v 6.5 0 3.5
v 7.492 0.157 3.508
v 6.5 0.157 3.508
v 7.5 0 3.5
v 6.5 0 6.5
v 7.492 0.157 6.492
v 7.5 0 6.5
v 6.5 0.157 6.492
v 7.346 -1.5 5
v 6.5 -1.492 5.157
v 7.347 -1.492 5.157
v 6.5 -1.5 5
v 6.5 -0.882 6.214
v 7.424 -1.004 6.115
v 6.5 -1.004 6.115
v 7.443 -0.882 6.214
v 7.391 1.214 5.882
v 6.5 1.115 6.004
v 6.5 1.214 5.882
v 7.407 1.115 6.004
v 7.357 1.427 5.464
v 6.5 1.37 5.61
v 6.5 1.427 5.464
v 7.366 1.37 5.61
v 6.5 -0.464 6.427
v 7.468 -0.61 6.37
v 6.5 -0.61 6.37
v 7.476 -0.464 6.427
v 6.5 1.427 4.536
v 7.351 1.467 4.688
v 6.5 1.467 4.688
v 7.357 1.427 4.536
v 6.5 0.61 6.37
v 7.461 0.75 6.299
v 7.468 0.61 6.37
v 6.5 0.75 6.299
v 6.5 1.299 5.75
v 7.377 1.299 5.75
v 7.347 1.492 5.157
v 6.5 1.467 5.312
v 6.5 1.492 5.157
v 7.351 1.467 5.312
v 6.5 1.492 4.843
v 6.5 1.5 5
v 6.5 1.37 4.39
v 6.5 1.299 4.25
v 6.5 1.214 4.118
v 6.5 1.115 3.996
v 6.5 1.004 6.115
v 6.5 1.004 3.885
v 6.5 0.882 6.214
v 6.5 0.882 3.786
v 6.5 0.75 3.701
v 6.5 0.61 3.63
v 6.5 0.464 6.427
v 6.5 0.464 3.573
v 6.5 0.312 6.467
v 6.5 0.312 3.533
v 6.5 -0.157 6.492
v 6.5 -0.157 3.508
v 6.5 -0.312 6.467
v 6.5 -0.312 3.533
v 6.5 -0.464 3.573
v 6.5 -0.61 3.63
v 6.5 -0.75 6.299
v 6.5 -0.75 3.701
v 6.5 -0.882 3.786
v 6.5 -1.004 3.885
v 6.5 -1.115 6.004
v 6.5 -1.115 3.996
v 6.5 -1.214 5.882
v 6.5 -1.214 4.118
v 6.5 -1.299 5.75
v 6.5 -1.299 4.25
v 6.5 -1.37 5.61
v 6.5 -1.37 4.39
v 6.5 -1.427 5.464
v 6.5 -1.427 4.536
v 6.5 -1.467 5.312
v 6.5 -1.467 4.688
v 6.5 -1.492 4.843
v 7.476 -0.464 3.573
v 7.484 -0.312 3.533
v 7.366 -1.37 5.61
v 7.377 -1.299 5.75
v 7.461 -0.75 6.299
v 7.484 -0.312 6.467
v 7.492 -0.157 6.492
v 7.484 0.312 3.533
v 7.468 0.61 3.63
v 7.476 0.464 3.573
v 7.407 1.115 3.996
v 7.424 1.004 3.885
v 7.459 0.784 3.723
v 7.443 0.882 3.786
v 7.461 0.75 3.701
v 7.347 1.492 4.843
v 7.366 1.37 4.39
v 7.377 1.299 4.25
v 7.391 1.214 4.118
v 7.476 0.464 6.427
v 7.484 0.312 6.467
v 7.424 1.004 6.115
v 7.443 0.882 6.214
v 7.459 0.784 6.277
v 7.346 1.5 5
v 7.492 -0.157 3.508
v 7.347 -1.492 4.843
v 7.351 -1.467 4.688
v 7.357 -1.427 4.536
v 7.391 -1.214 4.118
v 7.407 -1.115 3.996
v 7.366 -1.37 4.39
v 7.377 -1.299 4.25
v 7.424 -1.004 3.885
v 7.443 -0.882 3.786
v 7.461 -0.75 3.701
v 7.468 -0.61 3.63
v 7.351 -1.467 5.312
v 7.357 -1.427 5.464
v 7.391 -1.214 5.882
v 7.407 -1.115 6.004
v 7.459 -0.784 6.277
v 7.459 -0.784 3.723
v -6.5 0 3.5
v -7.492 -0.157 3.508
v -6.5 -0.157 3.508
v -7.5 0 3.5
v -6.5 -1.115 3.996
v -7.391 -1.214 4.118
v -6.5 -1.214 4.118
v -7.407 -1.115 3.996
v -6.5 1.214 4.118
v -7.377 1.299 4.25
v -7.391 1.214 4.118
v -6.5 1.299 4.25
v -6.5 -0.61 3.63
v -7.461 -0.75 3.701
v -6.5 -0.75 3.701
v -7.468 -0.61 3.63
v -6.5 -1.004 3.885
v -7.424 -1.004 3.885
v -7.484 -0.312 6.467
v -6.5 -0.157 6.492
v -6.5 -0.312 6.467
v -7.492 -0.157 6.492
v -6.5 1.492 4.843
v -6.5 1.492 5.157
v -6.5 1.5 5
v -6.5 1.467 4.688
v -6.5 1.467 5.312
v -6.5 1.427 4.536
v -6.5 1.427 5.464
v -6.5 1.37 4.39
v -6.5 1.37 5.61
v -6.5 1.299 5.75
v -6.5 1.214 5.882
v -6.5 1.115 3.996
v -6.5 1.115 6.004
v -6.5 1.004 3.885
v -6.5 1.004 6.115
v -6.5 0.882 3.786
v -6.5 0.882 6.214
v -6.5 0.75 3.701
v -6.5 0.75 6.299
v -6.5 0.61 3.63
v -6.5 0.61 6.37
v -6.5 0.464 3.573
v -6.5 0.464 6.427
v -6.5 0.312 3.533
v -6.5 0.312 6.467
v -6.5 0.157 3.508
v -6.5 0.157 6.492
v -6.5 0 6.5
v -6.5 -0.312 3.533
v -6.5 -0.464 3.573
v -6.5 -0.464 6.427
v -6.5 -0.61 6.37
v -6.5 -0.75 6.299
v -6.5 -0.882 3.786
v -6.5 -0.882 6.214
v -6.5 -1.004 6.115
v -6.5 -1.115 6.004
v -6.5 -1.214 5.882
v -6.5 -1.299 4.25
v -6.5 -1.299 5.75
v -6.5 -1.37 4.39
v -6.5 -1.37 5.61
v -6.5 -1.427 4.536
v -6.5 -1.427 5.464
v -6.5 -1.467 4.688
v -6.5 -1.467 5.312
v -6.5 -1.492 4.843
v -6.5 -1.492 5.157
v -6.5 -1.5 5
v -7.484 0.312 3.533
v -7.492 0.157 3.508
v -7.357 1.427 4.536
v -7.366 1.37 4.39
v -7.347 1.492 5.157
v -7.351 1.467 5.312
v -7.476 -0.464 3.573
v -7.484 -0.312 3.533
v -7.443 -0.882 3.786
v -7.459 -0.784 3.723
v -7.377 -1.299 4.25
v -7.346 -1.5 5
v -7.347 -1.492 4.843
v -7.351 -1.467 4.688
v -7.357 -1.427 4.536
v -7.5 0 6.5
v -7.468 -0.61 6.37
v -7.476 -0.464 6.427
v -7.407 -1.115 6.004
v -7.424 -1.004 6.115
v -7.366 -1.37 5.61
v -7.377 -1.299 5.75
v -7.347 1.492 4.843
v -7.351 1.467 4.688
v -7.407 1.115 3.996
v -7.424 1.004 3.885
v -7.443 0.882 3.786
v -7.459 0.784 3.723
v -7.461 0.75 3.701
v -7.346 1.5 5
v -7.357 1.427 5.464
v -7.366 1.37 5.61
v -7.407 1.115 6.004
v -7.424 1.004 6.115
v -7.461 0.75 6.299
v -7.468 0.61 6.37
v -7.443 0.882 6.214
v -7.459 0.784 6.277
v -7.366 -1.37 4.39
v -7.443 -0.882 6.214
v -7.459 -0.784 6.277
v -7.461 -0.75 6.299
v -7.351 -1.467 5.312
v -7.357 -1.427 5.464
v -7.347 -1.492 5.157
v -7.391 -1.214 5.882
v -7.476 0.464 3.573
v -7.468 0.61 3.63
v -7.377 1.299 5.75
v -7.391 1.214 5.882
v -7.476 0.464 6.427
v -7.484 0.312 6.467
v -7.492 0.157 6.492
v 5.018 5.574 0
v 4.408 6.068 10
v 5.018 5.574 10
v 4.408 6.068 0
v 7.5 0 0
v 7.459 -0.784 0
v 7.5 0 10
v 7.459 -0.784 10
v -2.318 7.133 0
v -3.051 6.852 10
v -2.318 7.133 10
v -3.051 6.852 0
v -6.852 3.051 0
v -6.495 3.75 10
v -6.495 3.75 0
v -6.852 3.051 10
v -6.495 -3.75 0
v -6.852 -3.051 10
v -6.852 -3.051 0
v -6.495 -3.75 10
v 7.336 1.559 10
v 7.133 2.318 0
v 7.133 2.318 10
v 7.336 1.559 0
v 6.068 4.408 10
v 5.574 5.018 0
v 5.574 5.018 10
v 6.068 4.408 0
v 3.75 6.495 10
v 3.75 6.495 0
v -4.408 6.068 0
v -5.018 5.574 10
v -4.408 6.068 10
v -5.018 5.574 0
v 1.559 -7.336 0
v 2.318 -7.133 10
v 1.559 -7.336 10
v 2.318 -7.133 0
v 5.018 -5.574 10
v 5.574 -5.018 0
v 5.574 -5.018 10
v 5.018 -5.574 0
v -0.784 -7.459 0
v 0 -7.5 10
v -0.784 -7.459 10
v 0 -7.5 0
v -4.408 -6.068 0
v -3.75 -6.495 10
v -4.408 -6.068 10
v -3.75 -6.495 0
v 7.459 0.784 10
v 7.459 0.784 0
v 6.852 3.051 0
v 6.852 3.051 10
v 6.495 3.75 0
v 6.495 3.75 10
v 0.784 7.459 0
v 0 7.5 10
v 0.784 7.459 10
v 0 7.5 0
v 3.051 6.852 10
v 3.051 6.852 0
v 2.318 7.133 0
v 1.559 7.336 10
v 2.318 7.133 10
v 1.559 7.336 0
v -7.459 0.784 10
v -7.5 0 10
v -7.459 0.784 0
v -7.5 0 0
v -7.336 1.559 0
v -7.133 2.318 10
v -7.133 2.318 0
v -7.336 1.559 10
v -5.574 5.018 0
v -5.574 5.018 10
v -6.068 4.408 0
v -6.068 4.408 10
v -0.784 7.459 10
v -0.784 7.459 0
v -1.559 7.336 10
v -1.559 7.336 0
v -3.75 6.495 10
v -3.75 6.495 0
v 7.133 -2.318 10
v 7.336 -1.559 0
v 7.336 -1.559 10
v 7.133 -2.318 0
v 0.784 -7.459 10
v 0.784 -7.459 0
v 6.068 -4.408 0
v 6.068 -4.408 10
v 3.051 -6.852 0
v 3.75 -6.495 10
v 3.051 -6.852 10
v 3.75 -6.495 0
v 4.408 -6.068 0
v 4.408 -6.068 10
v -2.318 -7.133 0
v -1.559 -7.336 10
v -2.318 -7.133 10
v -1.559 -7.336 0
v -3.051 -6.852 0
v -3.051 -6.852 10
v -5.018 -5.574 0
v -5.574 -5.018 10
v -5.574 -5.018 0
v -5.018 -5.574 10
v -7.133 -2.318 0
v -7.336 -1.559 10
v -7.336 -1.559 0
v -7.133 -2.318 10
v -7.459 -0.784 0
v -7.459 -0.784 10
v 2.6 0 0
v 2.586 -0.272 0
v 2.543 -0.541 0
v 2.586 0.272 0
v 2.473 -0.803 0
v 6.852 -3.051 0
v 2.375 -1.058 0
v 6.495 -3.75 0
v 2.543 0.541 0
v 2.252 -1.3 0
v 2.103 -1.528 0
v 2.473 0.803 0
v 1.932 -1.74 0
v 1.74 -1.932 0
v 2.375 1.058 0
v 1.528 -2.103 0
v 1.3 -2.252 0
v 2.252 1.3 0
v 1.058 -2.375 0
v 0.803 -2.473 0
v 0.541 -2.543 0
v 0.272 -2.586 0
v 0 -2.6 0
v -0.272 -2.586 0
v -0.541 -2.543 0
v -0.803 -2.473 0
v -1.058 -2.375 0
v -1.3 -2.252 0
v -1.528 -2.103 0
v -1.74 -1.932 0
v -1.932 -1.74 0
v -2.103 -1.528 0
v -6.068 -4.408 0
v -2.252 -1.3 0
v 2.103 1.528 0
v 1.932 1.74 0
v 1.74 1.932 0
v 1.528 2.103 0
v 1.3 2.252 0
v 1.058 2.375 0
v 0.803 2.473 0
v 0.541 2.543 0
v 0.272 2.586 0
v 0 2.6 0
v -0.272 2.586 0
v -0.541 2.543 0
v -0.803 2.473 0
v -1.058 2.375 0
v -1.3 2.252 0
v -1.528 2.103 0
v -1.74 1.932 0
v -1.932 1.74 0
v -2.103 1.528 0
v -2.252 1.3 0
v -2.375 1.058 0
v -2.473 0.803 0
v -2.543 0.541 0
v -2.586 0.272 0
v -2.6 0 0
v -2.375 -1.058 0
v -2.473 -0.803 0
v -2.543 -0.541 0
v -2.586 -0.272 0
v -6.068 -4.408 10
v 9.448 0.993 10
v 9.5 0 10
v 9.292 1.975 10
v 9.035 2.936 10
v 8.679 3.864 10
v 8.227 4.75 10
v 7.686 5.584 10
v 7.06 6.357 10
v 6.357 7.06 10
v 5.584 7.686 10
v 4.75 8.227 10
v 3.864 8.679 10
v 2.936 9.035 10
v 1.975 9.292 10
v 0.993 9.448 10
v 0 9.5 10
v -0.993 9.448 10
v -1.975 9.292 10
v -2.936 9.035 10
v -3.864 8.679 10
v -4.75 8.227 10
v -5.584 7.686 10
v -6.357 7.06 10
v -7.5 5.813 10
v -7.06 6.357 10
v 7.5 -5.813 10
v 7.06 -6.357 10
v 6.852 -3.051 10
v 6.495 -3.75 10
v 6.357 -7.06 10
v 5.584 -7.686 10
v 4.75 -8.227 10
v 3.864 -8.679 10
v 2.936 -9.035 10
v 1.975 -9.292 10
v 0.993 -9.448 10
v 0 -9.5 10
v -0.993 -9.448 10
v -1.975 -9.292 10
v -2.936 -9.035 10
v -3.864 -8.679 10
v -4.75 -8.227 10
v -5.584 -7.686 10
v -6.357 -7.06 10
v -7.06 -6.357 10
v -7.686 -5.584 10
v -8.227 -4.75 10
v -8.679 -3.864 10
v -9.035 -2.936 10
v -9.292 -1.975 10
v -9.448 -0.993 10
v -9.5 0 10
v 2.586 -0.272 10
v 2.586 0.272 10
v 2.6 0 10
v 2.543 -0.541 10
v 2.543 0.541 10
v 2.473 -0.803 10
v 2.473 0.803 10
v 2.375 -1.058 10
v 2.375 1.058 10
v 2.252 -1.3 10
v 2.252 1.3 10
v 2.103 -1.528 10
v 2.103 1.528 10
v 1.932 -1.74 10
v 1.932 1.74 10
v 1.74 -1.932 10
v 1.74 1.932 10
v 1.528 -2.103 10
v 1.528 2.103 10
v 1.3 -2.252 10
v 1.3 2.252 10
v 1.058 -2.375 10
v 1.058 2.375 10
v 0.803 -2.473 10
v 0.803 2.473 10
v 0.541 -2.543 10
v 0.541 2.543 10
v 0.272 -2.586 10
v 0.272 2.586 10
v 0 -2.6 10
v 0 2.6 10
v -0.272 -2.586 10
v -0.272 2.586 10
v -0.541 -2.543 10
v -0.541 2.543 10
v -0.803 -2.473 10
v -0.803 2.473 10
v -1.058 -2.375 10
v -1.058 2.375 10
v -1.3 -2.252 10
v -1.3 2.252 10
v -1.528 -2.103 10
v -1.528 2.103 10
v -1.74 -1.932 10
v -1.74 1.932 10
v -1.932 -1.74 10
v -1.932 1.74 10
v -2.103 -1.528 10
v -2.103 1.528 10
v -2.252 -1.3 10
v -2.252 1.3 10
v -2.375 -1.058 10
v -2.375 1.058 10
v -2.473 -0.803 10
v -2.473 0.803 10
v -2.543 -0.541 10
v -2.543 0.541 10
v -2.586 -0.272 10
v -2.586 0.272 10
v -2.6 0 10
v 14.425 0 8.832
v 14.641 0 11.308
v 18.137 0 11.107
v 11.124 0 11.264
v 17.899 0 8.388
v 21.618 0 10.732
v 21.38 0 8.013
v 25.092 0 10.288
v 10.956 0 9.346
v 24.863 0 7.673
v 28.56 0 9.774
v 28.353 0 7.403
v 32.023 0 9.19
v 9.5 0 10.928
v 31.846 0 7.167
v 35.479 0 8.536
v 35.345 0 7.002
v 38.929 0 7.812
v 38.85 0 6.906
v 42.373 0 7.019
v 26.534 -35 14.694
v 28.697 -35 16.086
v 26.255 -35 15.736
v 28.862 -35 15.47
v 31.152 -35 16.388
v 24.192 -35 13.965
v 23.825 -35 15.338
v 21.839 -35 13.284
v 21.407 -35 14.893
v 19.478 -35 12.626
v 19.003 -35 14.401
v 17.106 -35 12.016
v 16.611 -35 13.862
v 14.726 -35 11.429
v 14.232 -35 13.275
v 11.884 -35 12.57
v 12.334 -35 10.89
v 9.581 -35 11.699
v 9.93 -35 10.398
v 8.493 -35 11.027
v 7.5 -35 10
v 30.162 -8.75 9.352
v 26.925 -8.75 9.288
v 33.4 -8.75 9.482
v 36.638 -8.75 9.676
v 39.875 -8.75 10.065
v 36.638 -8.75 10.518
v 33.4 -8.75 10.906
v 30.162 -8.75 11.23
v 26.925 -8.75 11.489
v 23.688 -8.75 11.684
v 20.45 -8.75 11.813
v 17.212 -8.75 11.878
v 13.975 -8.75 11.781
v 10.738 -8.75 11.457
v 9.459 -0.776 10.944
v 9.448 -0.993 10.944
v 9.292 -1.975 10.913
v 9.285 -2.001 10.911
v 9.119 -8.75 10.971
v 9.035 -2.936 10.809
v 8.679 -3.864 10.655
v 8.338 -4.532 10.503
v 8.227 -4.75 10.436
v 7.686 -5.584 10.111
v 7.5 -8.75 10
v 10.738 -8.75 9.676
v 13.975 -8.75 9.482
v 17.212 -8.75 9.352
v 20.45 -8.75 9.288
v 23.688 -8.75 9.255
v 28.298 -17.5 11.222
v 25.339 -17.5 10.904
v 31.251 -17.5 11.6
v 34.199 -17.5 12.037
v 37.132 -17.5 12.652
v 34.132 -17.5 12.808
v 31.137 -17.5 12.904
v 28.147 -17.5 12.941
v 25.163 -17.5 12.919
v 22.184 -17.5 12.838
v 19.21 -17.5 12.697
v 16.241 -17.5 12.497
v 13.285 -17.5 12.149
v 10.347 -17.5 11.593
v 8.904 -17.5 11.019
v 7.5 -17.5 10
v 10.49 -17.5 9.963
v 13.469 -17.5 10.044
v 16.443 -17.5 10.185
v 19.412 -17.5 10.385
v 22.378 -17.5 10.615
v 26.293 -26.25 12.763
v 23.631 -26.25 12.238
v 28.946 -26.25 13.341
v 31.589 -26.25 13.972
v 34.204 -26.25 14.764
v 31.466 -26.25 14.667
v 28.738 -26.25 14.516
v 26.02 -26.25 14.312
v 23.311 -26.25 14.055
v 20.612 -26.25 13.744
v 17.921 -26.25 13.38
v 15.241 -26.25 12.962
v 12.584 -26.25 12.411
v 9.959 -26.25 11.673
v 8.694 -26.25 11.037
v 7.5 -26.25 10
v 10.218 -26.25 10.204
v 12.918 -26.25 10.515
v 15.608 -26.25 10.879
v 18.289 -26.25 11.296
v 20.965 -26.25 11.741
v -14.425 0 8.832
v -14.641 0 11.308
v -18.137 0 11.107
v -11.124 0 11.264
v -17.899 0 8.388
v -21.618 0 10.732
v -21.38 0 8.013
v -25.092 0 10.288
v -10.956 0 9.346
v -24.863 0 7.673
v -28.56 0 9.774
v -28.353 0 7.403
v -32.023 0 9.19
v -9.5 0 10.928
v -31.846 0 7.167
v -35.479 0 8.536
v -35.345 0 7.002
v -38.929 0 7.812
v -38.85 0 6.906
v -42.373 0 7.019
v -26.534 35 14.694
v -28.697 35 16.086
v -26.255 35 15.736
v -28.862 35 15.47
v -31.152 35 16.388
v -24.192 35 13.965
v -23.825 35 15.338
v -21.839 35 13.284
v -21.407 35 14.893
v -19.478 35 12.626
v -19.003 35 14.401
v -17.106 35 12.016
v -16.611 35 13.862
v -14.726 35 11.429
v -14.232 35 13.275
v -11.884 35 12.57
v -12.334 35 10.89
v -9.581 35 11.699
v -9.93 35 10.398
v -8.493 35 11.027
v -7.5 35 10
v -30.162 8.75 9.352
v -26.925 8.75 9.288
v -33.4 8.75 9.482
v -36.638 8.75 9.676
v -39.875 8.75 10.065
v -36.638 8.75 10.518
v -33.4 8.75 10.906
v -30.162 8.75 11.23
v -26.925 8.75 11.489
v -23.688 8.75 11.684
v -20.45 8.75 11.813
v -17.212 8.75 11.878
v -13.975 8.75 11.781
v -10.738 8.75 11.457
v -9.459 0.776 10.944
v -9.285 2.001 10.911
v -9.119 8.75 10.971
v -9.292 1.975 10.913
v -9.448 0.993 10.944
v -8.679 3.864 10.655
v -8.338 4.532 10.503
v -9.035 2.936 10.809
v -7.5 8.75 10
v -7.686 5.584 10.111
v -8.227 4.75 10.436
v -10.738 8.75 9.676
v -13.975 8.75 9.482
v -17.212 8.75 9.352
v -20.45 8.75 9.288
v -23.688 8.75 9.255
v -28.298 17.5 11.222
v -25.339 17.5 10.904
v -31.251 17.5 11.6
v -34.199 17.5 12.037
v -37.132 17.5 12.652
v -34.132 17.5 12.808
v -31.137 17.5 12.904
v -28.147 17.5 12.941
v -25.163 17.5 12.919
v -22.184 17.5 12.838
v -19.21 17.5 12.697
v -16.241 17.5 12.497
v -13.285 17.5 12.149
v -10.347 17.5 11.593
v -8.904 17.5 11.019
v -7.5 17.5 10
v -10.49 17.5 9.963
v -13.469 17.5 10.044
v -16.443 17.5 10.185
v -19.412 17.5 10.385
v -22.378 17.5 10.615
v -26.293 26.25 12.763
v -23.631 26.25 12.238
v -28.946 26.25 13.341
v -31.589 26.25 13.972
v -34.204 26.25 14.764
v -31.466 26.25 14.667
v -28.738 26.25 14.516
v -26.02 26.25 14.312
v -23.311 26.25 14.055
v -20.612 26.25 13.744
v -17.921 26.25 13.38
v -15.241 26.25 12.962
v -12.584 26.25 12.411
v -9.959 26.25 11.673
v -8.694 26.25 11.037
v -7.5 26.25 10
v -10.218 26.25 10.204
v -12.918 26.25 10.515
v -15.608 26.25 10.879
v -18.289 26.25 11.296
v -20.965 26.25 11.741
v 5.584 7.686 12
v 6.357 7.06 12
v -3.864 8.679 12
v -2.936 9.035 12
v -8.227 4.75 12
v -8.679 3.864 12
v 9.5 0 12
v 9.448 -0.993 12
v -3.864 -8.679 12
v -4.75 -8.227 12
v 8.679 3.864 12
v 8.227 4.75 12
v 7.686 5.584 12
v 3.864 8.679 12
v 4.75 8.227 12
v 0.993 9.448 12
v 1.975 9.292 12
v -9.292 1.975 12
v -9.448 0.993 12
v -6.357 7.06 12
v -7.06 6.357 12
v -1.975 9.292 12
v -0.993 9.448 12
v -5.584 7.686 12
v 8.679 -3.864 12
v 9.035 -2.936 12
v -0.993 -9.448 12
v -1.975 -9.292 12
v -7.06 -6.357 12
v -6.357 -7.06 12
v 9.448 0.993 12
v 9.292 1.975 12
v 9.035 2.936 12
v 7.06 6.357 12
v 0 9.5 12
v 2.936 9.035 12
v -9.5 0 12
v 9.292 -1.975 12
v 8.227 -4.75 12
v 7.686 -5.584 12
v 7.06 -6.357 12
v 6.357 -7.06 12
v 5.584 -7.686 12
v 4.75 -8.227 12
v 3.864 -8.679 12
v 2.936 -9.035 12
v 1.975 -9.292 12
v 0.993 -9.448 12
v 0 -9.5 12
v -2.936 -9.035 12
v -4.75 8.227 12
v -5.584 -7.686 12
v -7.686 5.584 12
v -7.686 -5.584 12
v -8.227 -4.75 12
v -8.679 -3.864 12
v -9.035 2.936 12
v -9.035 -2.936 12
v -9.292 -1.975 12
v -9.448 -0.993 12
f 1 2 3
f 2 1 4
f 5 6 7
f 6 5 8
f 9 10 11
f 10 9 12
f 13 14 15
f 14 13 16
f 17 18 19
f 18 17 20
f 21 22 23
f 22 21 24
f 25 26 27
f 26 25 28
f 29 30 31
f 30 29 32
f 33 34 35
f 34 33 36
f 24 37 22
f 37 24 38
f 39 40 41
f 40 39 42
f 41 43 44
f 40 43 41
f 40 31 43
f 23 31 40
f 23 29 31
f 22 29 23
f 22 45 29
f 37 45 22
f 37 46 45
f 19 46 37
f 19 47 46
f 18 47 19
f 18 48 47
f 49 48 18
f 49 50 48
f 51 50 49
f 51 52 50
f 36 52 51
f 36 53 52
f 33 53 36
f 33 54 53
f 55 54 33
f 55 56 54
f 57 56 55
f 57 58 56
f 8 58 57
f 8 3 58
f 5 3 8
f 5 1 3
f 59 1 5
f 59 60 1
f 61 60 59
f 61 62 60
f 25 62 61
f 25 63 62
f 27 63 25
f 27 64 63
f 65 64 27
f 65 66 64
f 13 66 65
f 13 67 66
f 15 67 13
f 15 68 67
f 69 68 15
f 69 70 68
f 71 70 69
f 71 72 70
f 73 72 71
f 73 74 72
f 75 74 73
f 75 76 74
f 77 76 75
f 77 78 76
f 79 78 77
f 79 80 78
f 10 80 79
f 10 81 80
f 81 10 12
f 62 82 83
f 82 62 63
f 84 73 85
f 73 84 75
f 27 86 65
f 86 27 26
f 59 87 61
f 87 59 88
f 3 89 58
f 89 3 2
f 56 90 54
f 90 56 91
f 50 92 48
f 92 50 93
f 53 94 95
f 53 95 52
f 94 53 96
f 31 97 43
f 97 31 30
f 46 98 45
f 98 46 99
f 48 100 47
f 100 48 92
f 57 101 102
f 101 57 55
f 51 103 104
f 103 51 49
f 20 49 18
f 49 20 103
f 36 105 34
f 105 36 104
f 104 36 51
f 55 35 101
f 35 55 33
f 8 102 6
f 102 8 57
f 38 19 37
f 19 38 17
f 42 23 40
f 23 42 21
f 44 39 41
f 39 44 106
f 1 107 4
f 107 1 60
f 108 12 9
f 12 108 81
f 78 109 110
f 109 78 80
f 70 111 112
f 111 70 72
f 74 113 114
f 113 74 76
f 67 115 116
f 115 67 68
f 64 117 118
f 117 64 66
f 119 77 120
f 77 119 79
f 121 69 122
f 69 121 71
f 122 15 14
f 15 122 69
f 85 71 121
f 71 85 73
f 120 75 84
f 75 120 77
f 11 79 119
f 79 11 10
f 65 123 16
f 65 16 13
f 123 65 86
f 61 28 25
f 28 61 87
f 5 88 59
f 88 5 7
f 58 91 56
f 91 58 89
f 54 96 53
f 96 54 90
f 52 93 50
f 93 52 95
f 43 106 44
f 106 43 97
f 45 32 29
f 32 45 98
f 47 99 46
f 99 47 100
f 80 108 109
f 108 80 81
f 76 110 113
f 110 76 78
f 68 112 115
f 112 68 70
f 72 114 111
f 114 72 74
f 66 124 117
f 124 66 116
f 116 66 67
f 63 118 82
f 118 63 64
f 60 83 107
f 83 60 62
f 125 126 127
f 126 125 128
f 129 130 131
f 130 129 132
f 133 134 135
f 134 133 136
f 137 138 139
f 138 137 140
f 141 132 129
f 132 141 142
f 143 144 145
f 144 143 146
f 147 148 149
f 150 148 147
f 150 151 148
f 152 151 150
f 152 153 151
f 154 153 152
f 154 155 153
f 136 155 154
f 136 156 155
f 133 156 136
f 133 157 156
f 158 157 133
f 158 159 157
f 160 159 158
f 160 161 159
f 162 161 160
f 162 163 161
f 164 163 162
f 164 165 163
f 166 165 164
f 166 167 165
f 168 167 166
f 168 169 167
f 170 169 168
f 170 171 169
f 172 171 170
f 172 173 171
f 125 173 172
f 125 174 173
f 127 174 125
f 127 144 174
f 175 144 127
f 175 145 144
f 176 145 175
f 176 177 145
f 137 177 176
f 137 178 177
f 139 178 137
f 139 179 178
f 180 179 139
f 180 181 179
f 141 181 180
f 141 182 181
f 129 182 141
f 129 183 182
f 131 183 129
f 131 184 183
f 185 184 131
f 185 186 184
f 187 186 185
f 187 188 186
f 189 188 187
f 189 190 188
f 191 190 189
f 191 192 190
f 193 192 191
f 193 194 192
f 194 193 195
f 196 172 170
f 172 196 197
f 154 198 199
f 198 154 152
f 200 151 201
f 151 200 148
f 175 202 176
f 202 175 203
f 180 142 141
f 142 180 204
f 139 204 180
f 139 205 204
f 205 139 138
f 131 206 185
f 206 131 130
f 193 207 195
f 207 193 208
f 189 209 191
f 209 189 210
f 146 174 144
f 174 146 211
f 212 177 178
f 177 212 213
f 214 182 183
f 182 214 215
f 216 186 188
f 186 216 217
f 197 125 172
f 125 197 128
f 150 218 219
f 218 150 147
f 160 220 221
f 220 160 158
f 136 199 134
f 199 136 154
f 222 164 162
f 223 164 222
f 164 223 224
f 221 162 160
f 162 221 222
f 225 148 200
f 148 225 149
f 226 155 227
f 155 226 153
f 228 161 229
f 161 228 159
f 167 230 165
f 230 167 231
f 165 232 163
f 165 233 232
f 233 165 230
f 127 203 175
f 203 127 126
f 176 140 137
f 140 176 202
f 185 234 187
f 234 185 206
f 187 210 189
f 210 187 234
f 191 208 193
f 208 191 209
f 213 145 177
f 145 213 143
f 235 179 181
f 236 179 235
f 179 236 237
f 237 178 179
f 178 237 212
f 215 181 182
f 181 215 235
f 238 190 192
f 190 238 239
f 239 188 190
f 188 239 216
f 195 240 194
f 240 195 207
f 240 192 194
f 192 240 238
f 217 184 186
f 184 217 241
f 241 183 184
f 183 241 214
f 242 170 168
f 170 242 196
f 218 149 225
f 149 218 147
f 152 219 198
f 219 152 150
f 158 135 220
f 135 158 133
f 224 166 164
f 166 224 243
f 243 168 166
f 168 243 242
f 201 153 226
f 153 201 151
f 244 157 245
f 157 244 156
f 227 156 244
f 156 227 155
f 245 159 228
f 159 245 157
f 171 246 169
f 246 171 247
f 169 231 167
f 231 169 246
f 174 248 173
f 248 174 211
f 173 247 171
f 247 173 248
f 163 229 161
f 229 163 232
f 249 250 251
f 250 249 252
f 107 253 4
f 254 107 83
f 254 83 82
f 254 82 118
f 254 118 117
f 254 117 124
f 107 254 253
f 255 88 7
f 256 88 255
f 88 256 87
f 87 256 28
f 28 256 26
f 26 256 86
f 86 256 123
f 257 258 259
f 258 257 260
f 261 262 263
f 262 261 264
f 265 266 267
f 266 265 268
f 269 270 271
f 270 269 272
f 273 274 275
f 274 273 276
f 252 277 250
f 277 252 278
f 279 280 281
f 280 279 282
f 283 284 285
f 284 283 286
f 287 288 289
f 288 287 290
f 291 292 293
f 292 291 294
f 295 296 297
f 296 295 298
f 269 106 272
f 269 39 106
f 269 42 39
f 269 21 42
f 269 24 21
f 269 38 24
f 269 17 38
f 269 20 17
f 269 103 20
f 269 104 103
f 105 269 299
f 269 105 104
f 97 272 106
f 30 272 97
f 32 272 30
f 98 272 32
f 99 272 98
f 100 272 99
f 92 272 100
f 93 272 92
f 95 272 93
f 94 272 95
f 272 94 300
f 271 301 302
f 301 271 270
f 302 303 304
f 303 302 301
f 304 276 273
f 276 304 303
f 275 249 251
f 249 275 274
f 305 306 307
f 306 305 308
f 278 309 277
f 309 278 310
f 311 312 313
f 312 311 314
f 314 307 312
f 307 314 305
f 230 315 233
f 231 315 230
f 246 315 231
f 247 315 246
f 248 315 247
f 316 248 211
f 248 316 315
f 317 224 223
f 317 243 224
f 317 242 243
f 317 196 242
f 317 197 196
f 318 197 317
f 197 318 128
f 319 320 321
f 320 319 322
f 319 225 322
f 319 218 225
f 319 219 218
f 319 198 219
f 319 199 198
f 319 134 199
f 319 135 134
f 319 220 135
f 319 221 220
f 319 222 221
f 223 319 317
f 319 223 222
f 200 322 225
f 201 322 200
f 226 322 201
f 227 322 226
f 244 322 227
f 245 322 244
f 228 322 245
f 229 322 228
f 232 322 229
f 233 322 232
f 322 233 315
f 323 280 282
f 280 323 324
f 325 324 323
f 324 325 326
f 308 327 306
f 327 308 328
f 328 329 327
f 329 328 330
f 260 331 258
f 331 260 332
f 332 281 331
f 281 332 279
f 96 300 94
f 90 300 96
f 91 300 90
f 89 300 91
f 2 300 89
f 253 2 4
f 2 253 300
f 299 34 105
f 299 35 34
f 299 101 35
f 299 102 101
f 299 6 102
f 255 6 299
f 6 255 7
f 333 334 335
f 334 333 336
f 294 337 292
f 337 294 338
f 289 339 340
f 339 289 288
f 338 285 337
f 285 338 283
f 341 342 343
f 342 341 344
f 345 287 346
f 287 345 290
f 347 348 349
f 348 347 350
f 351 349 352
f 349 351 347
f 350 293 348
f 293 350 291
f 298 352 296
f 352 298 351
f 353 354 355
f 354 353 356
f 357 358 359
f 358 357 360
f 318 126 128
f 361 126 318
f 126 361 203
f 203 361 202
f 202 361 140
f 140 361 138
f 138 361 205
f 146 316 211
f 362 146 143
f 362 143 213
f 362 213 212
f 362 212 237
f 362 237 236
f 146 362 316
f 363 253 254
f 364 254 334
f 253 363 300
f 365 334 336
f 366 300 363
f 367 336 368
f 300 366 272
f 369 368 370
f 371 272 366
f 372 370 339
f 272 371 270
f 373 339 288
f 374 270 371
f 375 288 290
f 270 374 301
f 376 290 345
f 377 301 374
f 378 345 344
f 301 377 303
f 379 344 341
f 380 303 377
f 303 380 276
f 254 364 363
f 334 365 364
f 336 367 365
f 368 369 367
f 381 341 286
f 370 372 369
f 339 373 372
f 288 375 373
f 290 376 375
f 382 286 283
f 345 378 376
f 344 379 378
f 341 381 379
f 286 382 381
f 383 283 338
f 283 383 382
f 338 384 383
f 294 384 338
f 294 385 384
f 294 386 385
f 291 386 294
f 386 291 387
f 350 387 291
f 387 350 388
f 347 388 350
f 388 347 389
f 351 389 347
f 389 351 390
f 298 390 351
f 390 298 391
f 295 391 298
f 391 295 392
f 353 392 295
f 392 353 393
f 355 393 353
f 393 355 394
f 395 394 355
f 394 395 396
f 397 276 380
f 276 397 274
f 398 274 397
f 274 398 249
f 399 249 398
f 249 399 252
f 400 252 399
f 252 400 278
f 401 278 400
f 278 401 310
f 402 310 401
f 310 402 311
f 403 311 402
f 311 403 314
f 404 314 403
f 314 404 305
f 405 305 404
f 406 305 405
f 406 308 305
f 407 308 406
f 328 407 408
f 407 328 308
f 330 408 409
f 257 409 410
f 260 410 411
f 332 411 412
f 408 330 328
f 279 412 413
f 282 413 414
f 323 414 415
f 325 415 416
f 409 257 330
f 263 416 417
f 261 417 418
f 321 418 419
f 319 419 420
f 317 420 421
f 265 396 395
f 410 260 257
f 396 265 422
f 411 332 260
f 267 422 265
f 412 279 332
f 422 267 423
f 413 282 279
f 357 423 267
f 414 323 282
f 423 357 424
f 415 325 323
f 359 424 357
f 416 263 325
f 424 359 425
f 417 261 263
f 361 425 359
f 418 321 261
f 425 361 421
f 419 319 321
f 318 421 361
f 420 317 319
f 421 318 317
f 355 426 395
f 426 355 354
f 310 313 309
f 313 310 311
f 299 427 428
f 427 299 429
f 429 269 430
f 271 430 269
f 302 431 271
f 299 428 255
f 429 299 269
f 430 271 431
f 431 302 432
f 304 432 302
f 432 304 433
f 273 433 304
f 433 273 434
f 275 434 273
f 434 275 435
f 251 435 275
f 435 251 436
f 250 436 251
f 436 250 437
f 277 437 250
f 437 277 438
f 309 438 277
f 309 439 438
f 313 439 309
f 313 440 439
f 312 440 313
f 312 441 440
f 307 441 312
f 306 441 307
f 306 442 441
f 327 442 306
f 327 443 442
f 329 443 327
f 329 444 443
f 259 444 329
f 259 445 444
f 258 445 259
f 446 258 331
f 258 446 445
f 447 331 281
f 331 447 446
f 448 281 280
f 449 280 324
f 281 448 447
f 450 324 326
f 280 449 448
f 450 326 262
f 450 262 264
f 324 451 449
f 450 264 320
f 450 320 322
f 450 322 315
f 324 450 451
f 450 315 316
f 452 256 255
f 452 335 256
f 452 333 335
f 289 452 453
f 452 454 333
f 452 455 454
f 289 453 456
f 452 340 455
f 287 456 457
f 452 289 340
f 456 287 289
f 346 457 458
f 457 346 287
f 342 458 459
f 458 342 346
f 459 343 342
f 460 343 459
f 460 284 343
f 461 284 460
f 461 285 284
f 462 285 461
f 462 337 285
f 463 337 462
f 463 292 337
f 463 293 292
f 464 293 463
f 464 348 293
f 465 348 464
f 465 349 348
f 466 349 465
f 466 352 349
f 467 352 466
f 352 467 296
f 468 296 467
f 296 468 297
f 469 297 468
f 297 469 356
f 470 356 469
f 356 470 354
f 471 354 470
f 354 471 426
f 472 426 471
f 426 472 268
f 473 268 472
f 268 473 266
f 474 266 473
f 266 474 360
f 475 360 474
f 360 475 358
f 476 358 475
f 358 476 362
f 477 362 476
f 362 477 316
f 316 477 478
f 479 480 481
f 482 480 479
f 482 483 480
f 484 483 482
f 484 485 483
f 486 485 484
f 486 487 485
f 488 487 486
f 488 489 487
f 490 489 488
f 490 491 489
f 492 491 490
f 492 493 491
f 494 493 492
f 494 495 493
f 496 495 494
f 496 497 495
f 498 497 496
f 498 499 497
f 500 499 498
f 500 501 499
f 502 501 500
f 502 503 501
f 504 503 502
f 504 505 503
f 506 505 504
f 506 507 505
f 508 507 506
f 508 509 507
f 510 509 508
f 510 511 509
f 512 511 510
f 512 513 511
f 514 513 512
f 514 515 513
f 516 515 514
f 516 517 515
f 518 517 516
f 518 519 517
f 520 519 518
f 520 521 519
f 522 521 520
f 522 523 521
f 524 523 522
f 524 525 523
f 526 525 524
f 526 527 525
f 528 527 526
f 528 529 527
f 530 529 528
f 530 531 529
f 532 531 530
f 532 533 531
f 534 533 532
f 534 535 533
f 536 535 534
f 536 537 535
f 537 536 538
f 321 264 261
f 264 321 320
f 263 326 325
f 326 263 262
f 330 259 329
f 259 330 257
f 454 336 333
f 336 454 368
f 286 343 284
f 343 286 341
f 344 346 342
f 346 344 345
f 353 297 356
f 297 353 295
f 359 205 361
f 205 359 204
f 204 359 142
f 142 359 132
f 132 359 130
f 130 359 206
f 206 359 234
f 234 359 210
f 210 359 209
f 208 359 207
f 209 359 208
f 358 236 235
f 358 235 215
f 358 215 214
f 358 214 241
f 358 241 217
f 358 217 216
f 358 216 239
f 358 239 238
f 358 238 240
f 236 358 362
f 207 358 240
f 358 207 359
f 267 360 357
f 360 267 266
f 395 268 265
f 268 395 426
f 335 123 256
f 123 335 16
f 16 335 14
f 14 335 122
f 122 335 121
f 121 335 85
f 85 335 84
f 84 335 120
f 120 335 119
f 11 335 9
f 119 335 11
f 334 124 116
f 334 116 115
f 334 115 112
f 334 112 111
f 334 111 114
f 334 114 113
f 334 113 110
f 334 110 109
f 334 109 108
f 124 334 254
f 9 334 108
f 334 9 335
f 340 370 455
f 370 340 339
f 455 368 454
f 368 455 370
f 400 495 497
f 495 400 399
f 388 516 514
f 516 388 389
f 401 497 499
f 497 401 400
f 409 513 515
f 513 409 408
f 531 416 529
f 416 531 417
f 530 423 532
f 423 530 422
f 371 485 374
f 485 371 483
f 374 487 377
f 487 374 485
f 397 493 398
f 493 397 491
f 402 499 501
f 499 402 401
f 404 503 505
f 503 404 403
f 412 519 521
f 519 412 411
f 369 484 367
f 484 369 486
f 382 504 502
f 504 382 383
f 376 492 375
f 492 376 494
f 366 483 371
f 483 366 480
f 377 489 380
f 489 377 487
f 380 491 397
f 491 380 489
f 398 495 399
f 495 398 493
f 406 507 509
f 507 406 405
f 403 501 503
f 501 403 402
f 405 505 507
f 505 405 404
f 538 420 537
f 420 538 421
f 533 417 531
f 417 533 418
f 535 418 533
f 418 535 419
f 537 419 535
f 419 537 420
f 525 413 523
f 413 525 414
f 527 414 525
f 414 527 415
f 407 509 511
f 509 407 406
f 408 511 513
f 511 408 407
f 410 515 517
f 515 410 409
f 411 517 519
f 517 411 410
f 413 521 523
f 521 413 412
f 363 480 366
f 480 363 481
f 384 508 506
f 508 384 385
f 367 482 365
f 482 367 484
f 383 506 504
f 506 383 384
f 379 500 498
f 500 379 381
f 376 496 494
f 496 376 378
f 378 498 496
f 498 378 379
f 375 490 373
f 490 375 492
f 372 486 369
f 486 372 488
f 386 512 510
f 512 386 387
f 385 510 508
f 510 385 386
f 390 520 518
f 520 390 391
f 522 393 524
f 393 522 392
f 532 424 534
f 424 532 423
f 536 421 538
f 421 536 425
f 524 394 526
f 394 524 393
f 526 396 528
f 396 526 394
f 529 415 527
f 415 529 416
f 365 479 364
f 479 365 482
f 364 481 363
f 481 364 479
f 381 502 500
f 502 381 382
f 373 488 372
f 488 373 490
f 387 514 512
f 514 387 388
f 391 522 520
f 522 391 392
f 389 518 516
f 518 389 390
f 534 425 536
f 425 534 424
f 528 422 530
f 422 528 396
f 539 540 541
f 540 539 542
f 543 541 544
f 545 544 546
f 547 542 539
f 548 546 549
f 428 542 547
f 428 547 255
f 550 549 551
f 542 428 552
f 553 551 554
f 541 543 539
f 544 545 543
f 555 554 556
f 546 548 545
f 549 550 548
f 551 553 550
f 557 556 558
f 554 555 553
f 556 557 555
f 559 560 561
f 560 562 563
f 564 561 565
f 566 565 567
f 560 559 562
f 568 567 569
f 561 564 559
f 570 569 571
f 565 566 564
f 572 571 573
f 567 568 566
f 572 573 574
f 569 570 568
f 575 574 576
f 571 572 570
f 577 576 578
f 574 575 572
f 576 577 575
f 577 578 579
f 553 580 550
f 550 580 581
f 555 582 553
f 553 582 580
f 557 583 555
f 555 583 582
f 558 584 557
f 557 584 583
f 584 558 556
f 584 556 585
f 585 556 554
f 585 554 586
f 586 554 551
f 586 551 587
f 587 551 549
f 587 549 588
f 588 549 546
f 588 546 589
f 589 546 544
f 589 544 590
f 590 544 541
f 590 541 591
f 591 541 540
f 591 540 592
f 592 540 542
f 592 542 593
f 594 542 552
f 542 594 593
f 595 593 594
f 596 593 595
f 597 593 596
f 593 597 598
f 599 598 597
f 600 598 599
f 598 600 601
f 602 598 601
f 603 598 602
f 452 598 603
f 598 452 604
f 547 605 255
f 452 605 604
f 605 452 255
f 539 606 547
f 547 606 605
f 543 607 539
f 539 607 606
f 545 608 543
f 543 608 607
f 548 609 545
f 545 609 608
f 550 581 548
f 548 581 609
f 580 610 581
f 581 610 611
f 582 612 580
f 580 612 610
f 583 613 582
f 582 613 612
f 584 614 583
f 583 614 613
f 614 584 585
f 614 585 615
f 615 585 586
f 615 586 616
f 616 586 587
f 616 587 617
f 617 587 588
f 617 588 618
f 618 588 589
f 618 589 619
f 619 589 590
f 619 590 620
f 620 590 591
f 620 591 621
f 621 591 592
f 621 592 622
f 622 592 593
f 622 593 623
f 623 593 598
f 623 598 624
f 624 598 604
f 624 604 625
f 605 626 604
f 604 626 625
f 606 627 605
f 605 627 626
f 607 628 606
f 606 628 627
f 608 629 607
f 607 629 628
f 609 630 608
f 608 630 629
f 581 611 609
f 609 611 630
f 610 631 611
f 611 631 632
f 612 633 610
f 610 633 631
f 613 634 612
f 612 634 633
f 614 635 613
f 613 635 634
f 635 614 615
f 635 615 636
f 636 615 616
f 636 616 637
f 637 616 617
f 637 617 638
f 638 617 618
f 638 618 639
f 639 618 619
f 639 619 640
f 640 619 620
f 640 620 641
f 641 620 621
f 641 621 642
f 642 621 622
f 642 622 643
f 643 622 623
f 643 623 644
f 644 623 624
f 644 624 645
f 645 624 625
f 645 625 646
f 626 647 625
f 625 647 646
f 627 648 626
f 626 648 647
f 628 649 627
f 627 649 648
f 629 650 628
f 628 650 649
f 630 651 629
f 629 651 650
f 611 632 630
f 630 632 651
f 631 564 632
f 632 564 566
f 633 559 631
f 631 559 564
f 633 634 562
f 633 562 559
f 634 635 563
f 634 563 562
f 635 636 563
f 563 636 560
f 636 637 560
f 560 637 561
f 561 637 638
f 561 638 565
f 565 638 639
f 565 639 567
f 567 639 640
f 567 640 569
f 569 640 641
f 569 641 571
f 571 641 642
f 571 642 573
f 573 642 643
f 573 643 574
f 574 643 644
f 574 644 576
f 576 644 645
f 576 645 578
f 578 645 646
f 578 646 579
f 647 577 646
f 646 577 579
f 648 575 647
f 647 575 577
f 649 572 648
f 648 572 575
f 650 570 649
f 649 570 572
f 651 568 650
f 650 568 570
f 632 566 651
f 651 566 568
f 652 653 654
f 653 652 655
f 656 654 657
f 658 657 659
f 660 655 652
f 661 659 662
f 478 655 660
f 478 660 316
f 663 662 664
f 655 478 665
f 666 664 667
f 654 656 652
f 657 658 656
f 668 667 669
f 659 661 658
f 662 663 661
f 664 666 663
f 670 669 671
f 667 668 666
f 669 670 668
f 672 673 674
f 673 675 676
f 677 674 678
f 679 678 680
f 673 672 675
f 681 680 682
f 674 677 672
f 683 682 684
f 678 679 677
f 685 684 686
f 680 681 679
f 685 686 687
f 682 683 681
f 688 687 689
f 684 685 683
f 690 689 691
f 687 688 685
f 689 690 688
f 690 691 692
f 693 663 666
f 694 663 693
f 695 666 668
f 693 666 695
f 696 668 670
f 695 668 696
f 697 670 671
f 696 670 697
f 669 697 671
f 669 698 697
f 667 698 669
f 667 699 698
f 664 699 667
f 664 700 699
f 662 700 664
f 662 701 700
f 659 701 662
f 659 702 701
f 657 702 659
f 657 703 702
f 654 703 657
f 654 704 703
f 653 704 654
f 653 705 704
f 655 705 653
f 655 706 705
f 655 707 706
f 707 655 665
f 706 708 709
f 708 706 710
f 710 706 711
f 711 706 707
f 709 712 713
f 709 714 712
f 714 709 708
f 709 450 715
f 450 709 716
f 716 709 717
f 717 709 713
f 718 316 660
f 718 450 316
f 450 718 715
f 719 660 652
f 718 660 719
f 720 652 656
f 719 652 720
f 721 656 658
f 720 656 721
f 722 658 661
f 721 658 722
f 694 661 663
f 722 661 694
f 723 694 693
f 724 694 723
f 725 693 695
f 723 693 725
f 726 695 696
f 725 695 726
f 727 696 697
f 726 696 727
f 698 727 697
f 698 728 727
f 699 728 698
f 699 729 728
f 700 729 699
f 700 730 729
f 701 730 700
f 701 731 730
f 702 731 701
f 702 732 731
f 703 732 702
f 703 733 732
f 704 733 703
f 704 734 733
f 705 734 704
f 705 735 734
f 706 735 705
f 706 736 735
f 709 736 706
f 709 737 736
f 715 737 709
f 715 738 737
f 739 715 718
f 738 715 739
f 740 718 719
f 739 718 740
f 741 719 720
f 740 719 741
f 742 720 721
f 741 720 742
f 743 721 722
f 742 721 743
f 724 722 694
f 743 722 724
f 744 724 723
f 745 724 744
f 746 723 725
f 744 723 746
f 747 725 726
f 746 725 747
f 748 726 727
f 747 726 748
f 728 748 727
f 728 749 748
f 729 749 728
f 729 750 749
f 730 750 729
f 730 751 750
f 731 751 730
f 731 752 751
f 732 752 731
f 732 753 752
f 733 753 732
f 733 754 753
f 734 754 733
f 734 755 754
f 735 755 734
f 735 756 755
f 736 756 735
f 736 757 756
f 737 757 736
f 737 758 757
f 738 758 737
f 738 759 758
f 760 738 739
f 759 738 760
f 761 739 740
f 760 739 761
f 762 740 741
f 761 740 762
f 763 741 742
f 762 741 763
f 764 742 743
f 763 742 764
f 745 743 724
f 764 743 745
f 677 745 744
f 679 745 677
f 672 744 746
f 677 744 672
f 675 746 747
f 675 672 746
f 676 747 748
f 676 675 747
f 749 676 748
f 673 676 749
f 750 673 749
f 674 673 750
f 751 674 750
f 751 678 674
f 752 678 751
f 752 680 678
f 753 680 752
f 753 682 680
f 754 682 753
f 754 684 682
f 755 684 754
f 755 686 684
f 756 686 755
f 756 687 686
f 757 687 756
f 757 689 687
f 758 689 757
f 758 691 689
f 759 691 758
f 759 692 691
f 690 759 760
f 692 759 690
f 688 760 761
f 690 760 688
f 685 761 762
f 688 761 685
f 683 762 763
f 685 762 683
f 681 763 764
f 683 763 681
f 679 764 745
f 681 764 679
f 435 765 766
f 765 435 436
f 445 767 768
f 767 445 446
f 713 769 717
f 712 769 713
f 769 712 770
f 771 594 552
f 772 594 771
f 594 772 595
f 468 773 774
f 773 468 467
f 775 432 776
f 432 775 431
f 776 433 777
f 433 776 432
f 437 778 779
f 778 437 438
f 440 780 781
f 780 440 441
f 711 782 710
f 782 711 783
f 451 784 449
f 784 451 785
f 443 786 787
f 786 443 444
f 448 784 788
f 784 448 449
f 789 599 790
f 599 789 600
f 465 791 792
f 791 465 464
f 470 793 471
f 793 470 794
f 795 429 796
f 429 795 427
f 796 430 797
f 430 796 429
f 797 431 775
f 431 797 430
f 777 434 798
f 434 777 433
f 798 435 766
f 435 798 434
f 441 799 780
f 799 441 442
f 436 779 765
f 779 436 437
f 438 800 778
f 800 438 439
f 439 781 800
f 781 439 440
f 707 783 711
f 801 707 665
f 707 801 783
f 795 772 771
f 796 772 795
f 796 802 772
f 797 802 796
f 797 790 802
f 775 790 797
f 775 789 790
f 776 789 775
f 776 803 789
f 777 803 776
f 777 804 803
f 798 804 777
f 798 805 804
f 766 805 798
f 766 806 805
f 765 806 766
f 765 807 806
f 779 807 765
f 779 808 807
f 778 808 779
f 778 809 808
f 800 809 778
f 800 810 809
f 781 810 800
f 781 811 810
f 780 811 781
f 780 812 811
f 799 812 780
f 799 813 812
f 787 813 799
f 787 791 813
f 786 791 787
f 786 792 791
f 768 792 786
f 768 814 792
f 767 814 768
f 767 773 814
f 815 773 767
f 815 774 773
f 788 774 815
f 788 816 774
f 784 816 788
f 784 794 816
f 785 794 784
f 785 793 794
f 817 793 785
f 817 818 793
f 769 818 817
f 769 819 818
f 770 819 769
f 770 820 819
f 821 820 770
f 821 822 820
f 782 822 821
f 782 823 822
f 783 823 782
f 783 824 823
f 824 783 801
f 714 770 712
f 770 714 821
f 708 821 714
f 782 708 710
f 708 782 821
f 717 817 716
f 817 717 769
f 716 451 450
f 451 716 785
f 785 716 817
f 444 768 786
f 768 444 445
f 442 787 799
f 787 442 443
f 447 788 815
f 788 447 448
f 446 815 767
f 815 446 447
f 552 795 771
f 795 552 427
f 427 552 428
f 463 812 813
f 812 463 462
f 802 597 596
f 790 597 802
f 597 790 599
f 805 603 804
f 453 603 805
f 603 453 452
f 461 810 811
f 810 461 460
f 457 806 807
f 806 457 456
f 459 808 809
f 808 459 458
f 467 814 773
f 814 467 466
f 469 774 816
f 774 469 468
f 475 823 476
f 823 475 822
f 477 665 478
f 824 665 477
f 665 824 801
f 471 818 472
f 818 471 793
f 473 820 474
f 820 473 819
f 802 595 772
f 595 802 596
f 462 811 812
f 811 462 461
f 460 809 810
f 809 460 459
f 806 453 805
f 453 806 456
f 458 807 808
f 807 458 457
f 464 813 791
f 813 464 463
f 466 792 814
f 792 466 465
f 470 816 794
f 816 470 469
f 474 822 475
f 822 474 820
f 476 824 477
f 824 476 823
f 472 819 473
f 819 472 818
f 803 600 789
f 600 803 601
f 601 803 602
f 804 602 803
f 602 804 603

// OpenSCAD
/*
 * COMPLETE MOTOR + IMPELLER ASSEMBLY
 * For CFD fluid testing and visualization
 * 
 * This model includes:
 *   - Brushless motor (2204-2206 size)
 *   - Motor shaft (5mm)
 *   - Impeller hub
 *   - 3 impeller variants (bladeless, AI-blades, hybrid)
 *   - Mounting plate
 * 
 * Usage:
 *   - Render full assembly: F6
 *   - Export for CFD: Set EXPORT_MODE = "impeller_only"
 *   - Change design: Set IMPELLER_TYPE = "bladeless" | "bladed" | "hybrid"
 */

// ============================================================================
// CONFIGURATION PARAMETERS (AI-Optimizable)
// ============================================================================

// General Settings
$fn = 60;  // Resolution for CFD export (increase to 100 for final)

// Export Mode
EXPORT_MODE = "impeller_only";  // Options: "full_assembly", "impeller_only", "motor_only"

// Impeller Type
IMPELLER_TYPE = "bladed";  // Options: "bladeless", "bladed", "hybrid"

// Motor Specifications (2204-2206 brushless)
MOTOR_DIAMETER = 28;         // mm
MOTOR_HEIGHT = 25;           // mm
MOTOR_SHAFT_DIAMETER = 5;    // mm (standard)
MOTOR_SHAFT_LENGTH = 15;     // mm (extends above motor)
MOTOR_MOUNT_PATTERN = 16;    // mm (16x16 or 19x19 common)
MOTOR_SCREW_DIAMETER = 3;    // M3 screws

// Impeller Parameters - BLADELESS
BLADELESS_OUTER_DIAMETER = 90;    // mm
BLADELESS_AIR_GAP = 0.8;          // mm (optimize: 0.6-1.2)
BLADELESS_THROAT_RATIO = 0.72;    // (optimize: 0.65-0.80)
BLADELESS_EXPANSION_ANGLE = 18;   // degrees (optimize: 12-25)
BLADELESS_RING_THICKNESS = 3;     // mm (optimize: 2-4)
BLADELESS_HEIGHT = 24;            // mm

// Impeller Parameters - BLADED
BLADED_DIAMETER = 85;
BLADED_HUB_DIAMETER = 15;         // mm (optimize: 12-20)
BLADED_BLADE_COUNT = 2;
BLADED_ROOT_CHORD = 35;
BLADED_TIP_CHORD_RATIO = 0.7;    // (optimize: 0.6-0.8)
BLADED_BLADE_THICKNESS = 2;       // mm (optimize: 1.5-3)
BLADED_BLADE_TWIST = -20;
BLADED_ATTACK_ANGLE = -5;
BLADED_BLADE_HEIGHT = 12;         // mm (optimize: 10-15)

// Hub Parameters
HUB_DIAMETER = 15;
HUB_HEIGHT = 10;
HUB_SET_SCREW_DIAMETER = 3;  // M3 set screw

// Mounting Plate
PLATE_SIZE = 50;
PLATE_THICKNESS = 3;

// ============================================================================
// MOTOR MODEL
// ============================================================================

module brushless_motor_2204() {
    color("DarkSlateGray") {
        // Motor can (bell)
        difference() {
            cylinder(h=MOTOR_HEIGHT, d=MOTOR_DIAMETER);
            
            // Hollow inside (weight reduction visualization)
            translate([0, 0, -0.5])
                cylinder(h=MOTOR_HEIGHT - 5, d=MOTOR_DIAMETER - 4);
            
            // Mounting holes
            for(i = [0:3]) {
                rotate([0, 0, i * 90])
                    translate([MOTOR_MOUNT_PATTERN/2, 0, MOTOR_HEIGHT/2])
                        rotate([90, 0, 0])
                            cylinder(h=MOTOR_DIAMETER, d=MOTOR_SCREW_DIAMETER, center=true);
            }
        }
        
        // Motor base
        translate([0, 0, -3])
            cylinder(h=3, d=MOTOR_DIAMETER - 2);
    }
    
    // Motor shaft
    color("Silver")
        translate([0, 0, MOTOR_HEIGHT])
            cylinder(h=MOTOR_SHAFT_LENGTH, d=MOTOR_SHAFT_DIAMETER);
    
    // Shaft tip (for hub attachment)
    color("Silver")
        translate([0, 0, MOTOR_HEIGHT + MOTOR_SHAFT_LENGTH])
            cylinder(h=2, d=MOTOR_SHAFT_DIAMETER - 0.5);
}

// ============================================================================
// IMPELLER HUB
// ============================================================================

module impeller_hub() {
    color("Gray")
    difference() {
        // Hub body
        cylinder(h=HUB_HEIGHT, d=HUB_DIAMETER);
        
        // Shaft hole (5mm + 0.2mm clearance)
        translate([0, 0, -0.5])
            cylinder(h=HUB_HEIGHT + 1, d=MOTOR_SHAFT_DIAMETER + 0.2);
        
        // Set screw holes (2x for balance)
        for(i = [0:1]) {
            rotate([0, 0, i * 180])
                translate([HUB_DIAMETER/2 - 1, 0, HUB_HEIGHT/2])
                    rotate([0, 90, 0])
                        cylinder(h=5, d=HUB_SET_SCREW_DIAMETER);
        }
    }
}

// ============================================================================
// BLADELESS IMPELLER (Dyson-style)
// ============================================================================

module bladeless_impeller() {
    outer_r = BLADELESS_OUTER_DIAMETER / 2;
    throat_r = outer_r * BLADELESS_THROAT_RATIO;
    gap = BLADELESS_AIR_GAP;
    
    color("SkyBlue", 0.7)
    difference() {
        // Outer ring
        rotate_extrude()
            translate([outer_r - BLADELESS_RING_THICKNESS/2, BLADELESS_HEIGHT/2, 0])
                circle(d=BLADELESS_RING_THICKNESS + BLADELESS_HEIGHT);
        
        // Inner air gap (critical for Coanda effect)
        rotate_extrude()
            translate([outer_r - gap - BLADELESS_RING_THICKNESS/2, BLADELESS_HEIGHT/2, 0])
                circle(d=BLADELESS_RING_THICKNESS + BLADELESS_HEIGHT - 2*gap);
    }
    
    // Base plate (connects to hub)
    color("SkyBlue", 0.7)
    translate([0, 0, -2])
        difference() {
            cylinder(h=2, d=outer_r * 2);
            translate([0, 0, -0.5])
                cylinder(h=3, d=HUB_DIAMETER + 1);
        }
    
    // Air inlet (bell-shaped for smooth flow)
    color("SkyBlue", 0.7)
    translate([0, 0, -2]) {
        difference() {
            cylinder(h=15, d1=throat_r * 2, d2=outer_r * 1.8);
            translate([0, 0, -0.5])
                cylinder(h=16, d1=throat_r * 2 - 3, d2=outer_r * 1.8 - 3);
        }
    }
}

// ============================================================================
// AI-OPTIMIZED BLADED IMPELLER (NACA 2412 profile)
// ============================================================================

module naca_2412_blade(chord, height, twist_angle, attack_angle) {
    // Simplified NACA 2412 airfoil profile
    // Using parametric approximation for 3D printing
    
    color("LightSteelBlue", 0.8)
    linear_extrude(height=height, twist=twist_angle, scale=BLADED_TIP_CHORD_RATIO) {
        rotate([0, 0, attack_angle])
        polygon([
            // Upper surface (cambered)
            [0, 0],
            [chord * 0.05, chord * 0.03],
            [chord * 0.1, chord * 0.045],
            [chord * 0.2, chord * 0.055],
            [chord * 0.3, chord * 0.058],
            [chord * 0.4, chord * 0.056],
            [chord * 0.5, chord * 0.052],
            [chord * 0.6, chord * 0.046],
            [chord * 0.7, chord * 0.038],
            [chord * 0.8, chord * 0.028],
            [chord * 0.9, chord * 0.016],
            [chord * 1.0, chord * 0.002],
            // Lower surface (less cambered)
            [chord * 0.9, -chord * 0.010],
            [chord * 0.8, -chord * 0.016],
            [chord * 0.7, -chord * 0.020],
            [chord * 0.6, -chord * 0.022],
            [chord * 0.5, -chord * 0.023],
            [chord * 0.4, -chord * 0.022],
            [chord * 0.3, -chord * 0.020],
            [chord * 0.2, -chord * 0.016],
            [chord * 0.1, -chord * 0.010],
            [chord * 0.05, -chord * 0.005],
        ]);
    }
}

module bladed_impeller() {
    // Blades
    for(i = [0 : BLADED_BLADE_COUNT - 1]) {
        rotate([0, 0, i * (360 / BLADED_BLADE_COUNT)])
            translate([BLADED_HUB_DIAMETER/2, 0, 0])
                rotate([90, 0, 0])
                    naca_2412_blade(
                        BLADED_ROOT_CHORD, 
                        (BLADED_DIAMETER - BLADED_HUB_DIAMETER) / 2,
                        BLADED_BLADE_TWIST,
                        BLADED_ATTACK_ANGLE
                    );
    }
    
    // Hub disk (connects blades)
    color("LightSteelBlue", 0.8)
    cylinder(h=2, d=BLADED_HUB_DIAMETER + 4);
}

// ============================================================================
// HYBRID IMPELLER (Blades inside bladeless ring)
// ============================================================================

module hybrid_impeller() {
    // Outer bladeless ring
    bladeless_impeller();
    
    // Inner bladed impeller (scaled down to fit)
    scale([0.85, 0.85, 1])
        bladed_impeller();
}

// ============================================================================
// MOUNTING PLATE
// ============================================================================

module mounting_plate() {
    color("DimGray")
    difference() {
        // Base plate
        translate([-PLATE_SIZE/2, -PLATE_SIZE/2, 0])
            cube([PLATE_SIZE, PLATE_SIZE, PLATE_THICKNESS]);
        
        // Center hole for motor shaft
        translate([0, 0, -0.5])
            cylinder(h=PLATE_THICKNESS + 1, d=MOTOR_DIAMETER + 2);
        
        // Motor mounting holes
        for(i = [0:3]) {
            rotate([0, 0, i * 90])
                translate([MOTOR_MOUNT_PATTERN/2, 0, -0.5])
                    cylinder(h=PLATE_THICKNESS + 1, d=MOTOR_SCREW_DIAMETER);
        }
    }
}

// ============================================================================
// COMPLETE ASSEMBLY
// ============================================================================

module complete_assembly() {
    // Mounting plate (bottom)
    translate([0, 0, -PLATE_THICKNESS])
        mounting_plate();
    
    // Motor
    translate([0, 0, 0])
        brushless_motor_2204();
    
    // Hub (on shaft)
    translate([0, 0, MOTOR_HEIGHT + MOTOR_SHAFT_LENGTH - 2])
        impeller_hub();
    
    // Impeller (on hub)
    translate([0, 0, MOTOR_HEIGHT + MOTOR_SHAFT_LENGTH + HUB_HEIGHT]) {
        if (IMPELLER_TYPE == "bladeless") {
            bladeless_impeller();
        } else if (IMPELLER_TYPE == "bladed") {
            bladed_impeller();
        } else if (IMPELLER_TYPE == "hybrid") {
            hybrid_impeller();
        }
    }
}

// ============================================================================
// RENDER BASED ON EXPORT MODE
// ============================================================================

if (EXPORT_MODE == "full_assembly") {
    complete_assembly();
} 
else if (EXPORT_MODE == "impeller_only") {
    // For CFD testing - impeller + hub only
    impeller_hub();
    translate([0, 0, HUB_HEIGHT]) {
        if (IMPELLER_TYPE == "bladeless") {
            bladeless_impeller();
        } else if (IMPELLER_TYPE == "bladed") {
            bladed_impeller();
        } else if (IMPELLER_TYPE == "hybrid") {
            hybrid_impeller();
        }
    }
}
else if (EXPORT_MODE == "motor_only") {
    brushless_motor_2204();
}

// ============================================================================
// ANNOTATIONS FOR VISUALIZATION
// ============================================================================

// Uncomment to show dimensions
/*
color("Red", 0.3)
translate([BLADED_DIAMETER/2 + 10, 0, 20])
    text(str("Ø", BLADED_DIAMETER, "mm"), size=5, halign="left");

color("Green", 0.3)
translate([0, BLADED_DIAMETER/2 + 10, 20])
    text(str(BLADED_BLADE_COUNT, " blades"), size=5, halign="center");
*/

// ============================================================================
// EXPORT NOTES
// ============================================================================

/*
 * TO EXPORT FOR CFD TESTING:
 * 
 * 1. Set EXPORT_MODE = "impeller_only"
 * 2. Set IMPELLER_TYPE = "bladeless" (or "bladed" or "hybrid")
 * 3. Press F6 to render
 * 4. File → Export → Export as STL
 * 5. Use filename: impeller_bladeless_fn60.stl
 * 
 * FOR OPTIMIZATION:
 * - Modify parameters at top (marked with "optimize:")
 * - Re-render and export
 * - Upload to SimScale for CFD
 * - Compare results
 * 
 * RECOMMENDED CFD SETTINGS:
 * - Solver: k-omega SST
 * - RPM: 5000, 7000, 9000
 * - Mesh: 3-5M cells
 * - Boundary: Rotating zone on impeller
 */
